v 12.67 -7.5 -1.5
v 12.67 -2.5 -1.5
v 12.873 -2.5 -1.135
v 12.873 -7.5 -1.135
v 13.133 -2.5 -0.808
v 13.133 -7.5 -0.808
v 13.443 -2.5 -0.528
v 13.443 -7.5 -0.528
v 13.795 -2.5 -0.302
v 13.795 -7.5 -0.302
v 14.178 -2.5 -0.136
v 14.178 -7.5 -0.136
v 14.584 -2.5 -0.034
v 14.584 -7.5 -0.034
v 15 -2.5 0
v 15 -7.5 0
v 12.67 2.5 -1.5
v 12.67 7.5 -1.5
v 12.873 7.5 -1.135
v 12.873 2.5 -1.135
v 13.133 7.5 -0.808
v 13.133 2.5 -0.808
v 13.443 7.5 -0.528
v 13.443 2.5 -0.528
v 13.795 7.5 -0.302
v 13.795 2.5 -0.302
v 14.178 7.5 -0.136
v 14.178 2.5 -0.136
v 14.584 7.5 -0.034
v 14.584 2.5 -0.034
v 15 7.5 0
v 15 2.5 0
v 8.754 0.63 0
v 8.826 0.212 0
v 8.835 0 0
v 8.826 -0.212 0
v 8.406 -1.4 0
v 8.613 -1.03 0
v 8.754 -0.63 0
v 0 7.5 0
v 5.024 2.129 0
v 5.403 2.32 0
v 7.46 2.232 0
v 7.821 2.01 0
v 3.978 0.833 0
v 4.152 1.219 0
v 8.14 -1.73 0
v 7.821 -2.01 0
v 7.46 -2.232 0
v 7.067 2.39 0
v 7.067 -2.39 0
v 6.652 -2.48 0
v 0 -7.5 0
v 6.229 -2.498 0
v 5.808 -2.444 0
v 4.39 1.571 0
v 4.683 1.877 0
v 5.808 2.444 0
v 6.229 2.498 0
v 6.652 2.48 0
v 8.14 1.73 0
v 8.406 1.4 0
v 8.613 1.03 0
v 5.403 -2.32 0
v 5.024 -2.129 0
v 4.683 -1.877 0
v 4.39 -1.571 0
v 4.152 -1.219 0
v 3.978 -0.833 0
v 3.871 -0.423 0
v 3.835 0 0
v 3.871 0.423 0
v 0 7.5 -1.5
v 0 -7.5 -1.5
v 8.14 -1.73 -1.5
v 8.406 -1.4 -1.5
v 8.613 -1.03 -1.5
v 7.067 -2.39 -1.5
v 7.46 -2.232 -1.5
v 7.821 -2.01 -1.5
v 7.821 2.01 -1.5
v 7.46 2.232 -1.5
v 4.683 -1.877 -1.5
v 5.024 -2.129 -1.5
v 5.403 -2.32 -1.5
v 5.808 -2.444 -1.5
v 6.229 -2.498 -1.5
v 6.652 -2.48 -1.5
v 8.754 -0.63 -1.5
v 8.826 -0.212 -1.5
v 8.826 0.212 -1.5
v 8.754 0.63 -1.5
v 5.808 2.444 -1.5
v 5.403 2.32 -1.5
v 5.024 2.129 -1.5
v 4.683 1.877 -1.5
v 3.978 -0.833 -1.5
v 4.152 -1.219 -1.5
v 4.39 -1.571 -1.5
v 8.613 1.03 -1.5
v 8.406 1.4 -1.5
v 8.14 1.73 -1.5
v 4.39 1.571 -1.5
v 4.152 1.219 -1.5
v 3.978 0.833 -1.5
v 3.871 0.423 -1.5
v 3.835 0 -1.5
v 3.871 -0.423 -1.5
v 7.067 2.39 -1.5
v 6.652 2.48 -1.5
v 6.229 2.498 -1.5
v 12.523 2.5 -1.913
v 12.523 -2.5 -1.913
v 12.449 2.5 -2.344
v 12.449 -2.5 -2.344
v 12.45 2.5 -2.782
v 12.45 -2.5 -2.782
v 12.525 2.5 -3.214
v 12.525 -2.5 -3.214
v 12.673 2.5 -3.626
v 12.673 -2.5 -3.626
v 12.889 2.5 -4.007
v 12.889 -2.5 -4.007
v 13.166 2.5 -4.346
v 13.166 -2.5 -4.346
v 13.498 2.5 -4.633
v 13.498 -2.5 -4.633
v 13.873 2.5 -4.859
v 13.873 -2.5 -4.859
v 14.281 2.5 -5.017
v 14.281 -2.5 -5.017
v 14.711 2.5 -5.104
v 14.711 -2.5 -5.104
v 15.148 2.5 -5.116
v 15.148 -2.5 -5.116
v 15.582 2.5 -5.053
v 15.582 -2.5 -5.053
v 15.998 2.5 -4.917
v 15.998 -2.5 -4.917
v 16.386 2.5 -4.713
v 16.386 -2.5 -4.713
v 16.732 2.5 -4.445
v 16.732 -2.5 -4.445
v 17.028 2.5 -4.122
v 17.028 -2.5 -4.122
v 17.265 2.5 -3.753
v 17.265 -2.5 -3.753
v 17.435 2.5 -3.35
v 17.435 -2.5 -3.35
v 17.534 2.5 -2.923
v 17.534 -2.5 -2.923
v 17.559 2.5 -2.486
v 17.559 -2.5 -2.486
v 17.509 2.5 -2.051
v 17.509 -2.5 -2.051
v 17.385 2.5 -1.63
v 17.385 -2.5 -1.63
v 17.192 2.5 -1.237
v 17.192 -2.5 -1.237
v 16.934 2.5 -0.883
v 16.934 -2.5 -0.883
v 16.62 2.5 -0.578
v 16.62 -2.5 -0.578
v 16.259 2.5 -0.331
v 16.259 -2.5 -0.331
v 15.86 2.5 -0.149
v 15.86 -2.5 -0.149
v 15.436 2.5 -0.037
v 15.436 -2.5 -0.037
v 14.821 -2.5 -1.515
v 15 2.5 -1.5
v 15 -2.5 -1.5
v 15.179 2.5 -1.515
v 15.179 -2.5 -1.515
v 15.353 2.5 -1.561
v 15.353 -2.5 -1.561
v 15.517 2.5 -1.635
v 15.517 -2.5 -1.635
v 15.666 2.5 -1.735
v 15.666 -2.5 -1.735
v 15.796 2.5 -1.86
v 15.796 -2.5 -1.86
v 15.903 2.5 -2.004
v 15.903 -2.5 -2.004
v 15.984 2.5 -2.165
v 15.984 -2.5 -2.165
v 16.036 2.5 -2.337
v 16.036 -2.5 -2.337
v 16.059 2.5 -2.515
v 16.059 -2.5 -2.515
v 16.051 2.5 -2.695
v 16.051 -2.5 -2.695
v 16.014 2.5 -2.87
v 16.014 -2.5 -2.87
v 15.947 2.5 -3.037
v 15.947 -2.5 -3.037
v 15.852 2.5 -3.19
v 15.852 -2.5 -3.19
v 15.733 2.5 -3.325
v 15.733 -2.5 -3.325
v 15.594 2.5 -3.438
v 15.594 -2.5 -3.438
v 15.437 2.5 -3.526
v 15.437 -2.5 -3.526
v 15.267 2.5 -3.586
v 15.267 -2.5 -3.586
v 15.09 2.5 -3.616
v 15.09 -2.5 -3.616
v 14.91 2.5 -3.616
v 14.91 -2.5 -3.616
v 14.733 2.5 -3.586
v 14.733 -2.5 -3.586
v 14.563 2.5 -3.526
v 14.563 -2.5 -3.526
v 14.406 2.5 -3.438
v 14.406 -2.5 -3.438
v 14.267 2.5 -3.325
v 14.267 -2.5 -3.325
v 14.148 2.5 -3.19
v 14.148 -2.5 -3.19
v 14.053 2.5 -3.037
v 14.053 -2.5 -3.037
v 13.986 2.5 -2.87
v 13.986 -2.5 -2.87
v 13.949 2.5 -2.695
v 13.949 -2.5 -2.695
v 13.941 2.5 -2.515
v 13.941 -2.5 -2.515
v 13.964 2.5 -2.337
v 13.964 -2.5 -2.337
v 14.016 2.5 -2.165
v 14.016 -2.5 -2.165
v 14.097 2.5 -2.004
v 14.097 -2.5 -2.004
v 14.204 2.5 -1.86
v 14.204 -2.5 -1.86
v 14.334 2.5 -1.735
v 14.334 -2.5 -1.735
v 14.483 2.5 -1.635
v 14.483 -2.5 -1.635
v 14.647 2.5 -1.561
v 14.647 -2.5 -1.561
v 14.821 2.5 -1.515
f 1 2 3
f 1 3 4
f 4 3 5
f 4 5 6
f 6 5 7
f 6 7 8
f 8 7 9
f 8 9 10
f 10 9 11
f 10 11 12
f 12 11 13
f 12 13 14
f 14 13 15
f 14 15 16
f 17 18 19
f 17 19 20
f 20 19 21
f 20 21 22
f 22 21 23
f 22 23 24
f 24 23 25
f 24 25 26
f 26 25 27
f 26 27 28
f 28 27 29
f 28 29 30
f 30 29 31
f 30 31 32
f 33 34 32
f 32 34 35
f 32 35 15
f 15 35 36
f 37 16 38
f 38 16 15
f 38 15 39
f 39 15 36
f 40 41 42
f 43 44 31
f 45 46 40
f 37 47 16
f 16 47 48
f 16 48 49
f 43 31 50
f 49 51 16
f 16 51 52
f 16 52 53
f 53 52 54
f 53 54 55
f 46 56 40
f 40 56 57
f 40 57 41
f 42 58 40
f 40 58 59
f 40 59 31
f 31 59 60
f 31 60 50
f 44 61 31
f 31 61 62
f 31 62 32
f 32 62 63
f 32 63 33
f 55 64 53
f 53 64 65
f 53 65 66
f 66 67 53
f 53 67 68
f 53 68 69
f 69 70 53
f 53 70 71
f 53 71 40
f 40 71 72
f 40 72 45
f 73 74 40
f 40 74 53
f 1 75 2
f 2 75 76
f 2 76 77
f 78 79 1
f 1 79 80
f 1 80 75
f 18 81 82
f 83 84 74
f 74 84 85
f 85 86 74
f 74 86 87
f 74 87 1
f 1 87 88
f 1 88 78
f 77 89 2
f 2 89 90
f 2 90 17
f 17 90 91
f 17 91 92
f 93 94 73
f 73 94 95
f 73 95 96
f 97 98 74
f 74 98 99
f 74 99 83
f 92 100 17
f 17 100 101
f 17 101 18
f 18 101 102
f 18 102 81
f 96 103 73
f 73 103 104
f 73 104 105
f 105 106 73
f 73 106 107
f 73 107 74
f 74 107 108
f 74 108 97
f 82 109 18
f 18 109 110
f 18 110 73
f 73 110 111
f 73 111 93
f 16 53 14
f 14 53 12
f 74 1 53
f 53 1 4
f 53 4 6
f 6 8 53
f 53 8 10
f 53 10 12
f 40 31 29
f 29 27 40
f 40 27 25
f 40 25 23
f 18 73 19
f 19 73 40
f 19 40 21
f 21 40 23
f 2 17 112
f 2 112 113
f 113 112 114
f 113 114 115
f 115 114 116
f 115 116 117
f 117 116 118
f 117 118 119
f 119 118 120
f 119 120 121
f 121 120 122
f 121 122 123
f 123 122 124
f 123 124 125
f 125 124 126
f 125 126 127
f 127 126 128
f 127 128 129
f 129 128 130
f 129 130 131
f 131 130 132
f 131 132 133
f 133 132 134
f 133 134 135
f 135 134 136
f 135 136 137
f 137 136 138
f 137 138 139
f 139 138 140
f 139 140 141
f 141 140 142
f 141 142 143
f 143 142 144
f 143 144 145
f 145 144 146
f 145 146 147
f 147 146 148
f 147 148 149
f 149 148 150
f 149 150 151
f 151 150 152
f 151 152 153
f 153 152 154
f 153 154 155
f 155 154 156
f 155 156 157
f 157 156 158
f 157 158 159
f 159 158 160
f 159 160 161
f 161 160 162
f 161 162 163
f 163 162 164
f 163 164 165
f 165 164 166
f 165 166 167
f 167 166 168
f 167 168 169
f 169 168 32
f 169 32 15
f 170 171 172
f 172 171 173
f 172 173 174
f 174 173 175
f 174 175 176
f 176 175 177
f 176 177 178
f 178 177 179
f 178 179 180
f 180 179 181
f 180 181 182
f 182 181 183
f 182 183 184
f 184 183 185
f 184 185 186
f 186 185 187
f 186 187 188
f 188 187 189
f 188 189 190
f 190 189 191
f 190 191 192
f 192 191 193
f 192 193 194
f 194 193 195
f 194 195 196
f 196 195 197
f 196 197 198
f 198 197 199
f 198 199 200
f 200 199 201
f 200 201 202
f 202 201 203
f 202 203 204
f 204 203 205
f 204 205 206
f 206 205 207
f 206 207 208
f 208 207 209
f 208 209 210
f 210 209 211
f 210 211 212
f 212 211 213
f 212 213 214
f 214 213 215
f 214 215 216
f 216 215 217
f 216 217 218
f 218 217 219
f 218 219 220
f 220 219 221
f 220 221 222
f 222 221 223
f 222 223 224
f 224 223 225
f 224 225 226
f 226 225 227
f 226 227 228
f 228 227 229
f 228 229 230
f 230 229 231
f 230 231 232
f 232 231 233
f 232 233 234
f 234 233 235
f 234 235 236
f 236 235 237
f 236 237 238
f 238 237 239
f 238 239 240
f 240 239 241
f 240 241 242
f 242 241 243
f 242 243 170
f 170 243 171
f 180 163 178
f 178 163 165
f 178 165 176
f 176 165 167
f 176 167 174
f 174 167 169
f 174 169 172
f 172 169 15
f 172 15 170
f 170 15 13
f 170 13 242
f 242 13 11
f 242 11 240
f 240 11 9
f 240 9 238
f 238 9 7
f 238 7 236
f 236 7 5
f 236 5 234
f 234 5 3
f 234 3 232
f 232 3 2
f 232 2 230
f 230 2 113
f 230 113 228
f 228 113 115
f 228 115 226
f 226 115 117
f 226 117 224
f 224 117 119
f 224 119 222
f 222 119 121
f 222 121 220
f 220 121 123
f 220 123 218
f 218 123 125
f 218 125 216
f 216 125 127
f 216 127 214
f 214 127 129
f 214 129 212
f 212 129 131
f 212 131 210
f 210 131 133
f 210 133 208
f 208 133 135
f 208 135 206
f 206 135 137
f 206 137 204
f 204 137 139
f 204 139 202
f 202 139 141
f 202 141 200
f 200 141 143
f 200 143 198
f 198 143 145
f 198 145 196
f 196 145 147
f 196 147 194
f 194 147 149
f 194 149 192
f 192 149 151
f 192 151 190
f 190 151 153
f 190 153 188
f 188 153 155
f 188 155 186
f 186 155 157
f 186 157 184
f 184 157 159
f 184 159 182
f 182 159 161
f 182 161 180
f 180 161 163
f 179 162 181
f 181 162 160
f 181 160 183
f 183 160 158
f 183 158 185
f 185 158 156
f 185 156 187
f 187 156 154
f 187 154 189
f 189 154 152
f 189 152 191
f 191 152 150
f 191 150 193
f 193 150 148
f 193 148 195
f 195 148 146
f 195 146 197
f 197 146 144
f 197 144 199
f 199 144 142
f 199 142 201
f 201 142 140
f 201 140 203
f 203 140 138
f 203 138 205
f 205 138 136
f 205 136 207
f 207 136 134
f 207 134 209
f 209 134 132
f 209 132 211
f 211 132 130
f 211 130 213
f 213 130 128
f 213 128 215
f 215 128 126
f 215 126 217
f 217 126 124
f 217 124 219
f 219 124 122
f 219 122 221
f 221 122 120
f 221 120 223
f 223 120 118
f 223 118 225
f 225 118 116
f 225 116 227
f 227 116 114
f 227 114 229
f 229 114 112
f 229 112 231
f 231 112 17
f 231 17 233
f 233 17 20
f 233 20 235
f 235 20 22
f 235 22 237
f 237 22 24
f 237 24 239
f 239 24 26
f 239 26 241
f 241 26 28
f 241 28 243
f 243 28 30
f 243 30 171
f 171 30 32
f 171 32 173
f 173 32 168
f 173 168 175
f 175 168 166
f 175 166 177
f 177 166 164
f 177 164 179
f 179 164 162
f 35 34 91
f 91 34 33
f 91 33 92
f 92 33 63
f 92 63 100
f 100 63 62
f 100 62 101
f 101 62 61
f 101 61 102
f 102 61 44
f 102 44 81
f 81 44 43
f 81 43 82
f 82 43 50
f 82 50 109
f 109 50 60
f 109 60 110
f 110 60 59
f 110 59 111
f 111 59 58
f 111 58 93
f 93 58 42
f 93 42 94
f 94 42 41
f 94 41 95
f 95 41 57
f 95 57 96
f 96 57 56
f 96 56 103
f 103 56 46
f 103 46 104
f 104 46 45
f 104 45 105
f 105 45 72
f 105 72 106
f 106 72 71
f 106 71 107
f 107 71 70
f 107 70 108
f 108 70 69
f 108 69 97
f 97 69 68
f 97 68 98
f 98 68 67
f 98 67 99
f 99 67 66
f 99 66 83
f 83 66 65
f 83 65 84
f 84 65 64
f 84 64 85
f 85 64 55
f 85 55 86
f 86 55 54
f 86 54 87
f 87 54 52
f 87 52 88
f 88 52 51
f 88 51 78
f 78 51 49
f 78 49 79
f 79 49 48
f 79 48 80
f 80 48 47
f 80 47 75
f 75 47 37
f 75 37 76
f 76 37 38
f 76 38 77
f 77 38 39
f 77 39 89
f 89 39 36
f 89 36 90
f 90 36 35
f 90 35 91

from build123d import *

# Parameters (mm, degrees)
BOSS_EXTRUDE1_DEPTH      = 7.5
BOSS_EXTRUDE1_DEPTH_BACK = 7.5
BOSS_EXTRUDE3_DEPTH      = 2.5
BOSS_EXTRUDE3_DEPTH_BACK = 2.5
SKETCH1_4_R              = 1.06
SKETCH2_R                = 2.5
CUT_EXTRUDE1_DEPTH       = 3


with BuildPart() as part:
    # Sketch1 → Boss-Extrude1 (new, two sides: drawn at the far end of the back side and taken through both)
    with BuildSketch(Plane(origin=(0, 0, 0), x_dir=(1, 0, 0), z_dir=(0, 1, 0)).offset(-BOSS_EXTRUDE1_DEPTH_BACK)):
        with BuildLine():
            Line((0, 1.5), (0, 0))
            Line((0, 0), (15, 0))
            ThreePointArc((15, 0), (13.614359354, 0.407420152), (12.66976396, 1.5))
            Line((12.66976396, 1.5), (0, 1.5))
        make_face()
    extrude(amount=BOSS_EXTRUDE1_DEPTH + BOSS_EXTRUDE1_DEPTH_BACK)

    # Sketch1<4> → Boss-Extrude3 (add, two sides: drawn at the far end of the back side and taken through both)
    with BuildSketch(Plane(origin=(0, 0, 0), x_dir=(1, 0, 0), z_dir=(0, 1, 0)).offset(-BOSS_EXTRUDE3_DEPTH_BACK)):
        with BuildLine():
            ThreePointArc((12.66976396, 1.5), (13.614359354, 0.407420152), (15, 0))
            ThreePointArc((15, 0), (16.81019336, 0.74980664), (17.56, 2.56))
            ThreePointArc((17.56, 2.56), (14.45769209, 5.061899704), (12.66976396, 1.5))
        make_face()
        with Locations((15, 2.56)):
            Circle(SKETCH1_4_R, mode=Mode.SUBTRACT)
    extrude(amount=BOSS_EXTRUDE3_DEPTH + BOSS_EXTRUDE3_DEPTH_BACK)

    # Sketch2 → Cut-Extrude1 (cut)
    with BuildSketch(Plane(origin=(0, 0, -1.5), x_dir=(-1, 0, 0), z_dir=(0, 0, -1))):
        with Locations((-6.33488198, 0)):
            Circle(SKETCH2_R)
    extrude(amount=-CUT_EXTRUDE1_DEPTH, mode=Mode.SUBTRACT)


solid = part.part
